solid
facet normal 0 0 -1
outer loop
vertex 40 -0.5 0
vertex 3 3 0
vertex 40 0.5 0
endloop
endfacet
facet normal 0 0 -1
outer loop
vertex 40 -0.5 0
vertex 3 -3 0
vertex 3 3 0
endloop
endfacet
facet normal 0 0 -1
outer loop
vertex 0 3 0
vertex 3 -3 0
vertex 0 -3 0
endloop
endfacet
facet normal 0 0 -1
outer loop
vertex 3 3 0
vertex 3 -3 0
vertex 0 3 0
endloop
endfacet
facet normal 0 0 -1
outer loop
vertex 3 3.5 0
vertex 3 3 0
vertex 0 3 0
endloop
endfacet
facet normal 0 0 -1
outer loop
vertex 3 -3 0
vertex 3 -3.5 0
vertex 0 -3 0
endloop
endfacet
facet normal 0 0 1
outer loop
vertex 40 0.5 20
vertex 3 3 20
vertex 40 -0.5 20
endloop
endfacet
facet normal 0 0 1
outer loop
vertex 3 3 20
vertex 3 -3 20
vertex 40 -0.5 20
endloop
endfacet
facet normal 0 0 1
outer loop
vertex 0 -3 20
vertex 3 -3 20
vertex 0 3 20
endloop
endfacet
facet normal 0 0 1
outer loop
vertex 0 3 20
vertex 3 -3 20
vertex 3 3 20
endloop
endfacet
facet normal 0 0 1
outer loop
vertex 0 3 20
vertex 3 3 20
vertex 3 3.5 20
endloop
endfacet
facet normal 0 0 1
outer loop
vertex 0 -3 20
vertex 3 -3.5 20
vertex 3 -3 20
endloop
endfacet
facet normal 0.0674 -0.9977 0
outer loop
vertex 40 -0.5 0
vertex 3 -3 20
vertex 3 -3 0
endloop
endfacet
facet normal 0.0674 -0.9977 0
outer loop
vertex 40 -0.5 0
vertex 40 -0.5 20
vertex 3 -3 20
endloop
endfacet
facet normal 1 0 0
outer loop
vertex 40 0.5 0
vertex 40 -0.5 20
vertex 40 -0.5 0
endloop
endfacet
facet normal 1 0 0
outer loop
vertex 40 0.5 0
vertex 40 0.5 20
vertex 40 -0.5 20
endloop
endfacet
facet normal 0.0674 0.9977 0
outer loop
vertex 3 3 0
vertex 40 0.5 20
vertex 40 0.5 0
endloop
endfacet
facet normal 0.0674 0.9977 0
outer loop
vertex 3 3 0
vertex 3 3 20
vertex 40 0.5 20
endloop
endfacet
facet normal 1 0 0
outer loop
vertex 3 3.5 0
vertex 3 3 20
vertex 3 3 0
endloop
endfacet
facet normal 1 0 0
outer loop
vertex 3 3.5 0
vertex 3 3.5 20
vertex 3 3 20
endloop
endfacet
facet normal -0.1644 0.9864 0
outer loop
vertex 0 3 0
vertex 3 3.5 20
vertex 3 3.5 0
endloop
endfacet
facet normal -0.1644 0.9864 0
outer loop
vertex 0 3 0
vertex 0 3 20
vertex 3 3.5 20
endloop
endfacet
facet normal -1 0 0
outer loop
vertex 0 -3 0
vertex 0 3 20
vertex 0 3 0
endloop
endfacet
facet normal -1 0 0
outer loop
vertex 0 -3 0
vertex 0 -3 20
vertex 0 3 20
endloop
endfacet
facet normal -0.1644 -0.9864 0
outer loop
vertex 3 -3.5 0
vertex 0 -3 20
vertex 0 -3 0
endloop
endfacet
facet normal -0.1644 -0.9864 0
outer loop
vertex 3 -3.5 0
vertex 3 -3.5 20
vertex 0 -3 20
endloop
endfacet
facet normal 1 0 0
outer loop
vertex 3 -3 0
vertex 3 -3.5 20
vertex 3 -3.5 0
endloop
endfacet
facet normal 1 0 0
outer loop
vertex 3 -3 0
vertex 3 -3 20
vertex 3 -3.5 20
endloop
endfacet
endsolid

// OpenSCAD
linear_extrude(height=20)
    polygon(
        points = [ [0,-3], [3,-3.5], [3,-3], [40,-0.5], [40,0.5], [3,3], [3,3.5], [0,3] ]
    );
